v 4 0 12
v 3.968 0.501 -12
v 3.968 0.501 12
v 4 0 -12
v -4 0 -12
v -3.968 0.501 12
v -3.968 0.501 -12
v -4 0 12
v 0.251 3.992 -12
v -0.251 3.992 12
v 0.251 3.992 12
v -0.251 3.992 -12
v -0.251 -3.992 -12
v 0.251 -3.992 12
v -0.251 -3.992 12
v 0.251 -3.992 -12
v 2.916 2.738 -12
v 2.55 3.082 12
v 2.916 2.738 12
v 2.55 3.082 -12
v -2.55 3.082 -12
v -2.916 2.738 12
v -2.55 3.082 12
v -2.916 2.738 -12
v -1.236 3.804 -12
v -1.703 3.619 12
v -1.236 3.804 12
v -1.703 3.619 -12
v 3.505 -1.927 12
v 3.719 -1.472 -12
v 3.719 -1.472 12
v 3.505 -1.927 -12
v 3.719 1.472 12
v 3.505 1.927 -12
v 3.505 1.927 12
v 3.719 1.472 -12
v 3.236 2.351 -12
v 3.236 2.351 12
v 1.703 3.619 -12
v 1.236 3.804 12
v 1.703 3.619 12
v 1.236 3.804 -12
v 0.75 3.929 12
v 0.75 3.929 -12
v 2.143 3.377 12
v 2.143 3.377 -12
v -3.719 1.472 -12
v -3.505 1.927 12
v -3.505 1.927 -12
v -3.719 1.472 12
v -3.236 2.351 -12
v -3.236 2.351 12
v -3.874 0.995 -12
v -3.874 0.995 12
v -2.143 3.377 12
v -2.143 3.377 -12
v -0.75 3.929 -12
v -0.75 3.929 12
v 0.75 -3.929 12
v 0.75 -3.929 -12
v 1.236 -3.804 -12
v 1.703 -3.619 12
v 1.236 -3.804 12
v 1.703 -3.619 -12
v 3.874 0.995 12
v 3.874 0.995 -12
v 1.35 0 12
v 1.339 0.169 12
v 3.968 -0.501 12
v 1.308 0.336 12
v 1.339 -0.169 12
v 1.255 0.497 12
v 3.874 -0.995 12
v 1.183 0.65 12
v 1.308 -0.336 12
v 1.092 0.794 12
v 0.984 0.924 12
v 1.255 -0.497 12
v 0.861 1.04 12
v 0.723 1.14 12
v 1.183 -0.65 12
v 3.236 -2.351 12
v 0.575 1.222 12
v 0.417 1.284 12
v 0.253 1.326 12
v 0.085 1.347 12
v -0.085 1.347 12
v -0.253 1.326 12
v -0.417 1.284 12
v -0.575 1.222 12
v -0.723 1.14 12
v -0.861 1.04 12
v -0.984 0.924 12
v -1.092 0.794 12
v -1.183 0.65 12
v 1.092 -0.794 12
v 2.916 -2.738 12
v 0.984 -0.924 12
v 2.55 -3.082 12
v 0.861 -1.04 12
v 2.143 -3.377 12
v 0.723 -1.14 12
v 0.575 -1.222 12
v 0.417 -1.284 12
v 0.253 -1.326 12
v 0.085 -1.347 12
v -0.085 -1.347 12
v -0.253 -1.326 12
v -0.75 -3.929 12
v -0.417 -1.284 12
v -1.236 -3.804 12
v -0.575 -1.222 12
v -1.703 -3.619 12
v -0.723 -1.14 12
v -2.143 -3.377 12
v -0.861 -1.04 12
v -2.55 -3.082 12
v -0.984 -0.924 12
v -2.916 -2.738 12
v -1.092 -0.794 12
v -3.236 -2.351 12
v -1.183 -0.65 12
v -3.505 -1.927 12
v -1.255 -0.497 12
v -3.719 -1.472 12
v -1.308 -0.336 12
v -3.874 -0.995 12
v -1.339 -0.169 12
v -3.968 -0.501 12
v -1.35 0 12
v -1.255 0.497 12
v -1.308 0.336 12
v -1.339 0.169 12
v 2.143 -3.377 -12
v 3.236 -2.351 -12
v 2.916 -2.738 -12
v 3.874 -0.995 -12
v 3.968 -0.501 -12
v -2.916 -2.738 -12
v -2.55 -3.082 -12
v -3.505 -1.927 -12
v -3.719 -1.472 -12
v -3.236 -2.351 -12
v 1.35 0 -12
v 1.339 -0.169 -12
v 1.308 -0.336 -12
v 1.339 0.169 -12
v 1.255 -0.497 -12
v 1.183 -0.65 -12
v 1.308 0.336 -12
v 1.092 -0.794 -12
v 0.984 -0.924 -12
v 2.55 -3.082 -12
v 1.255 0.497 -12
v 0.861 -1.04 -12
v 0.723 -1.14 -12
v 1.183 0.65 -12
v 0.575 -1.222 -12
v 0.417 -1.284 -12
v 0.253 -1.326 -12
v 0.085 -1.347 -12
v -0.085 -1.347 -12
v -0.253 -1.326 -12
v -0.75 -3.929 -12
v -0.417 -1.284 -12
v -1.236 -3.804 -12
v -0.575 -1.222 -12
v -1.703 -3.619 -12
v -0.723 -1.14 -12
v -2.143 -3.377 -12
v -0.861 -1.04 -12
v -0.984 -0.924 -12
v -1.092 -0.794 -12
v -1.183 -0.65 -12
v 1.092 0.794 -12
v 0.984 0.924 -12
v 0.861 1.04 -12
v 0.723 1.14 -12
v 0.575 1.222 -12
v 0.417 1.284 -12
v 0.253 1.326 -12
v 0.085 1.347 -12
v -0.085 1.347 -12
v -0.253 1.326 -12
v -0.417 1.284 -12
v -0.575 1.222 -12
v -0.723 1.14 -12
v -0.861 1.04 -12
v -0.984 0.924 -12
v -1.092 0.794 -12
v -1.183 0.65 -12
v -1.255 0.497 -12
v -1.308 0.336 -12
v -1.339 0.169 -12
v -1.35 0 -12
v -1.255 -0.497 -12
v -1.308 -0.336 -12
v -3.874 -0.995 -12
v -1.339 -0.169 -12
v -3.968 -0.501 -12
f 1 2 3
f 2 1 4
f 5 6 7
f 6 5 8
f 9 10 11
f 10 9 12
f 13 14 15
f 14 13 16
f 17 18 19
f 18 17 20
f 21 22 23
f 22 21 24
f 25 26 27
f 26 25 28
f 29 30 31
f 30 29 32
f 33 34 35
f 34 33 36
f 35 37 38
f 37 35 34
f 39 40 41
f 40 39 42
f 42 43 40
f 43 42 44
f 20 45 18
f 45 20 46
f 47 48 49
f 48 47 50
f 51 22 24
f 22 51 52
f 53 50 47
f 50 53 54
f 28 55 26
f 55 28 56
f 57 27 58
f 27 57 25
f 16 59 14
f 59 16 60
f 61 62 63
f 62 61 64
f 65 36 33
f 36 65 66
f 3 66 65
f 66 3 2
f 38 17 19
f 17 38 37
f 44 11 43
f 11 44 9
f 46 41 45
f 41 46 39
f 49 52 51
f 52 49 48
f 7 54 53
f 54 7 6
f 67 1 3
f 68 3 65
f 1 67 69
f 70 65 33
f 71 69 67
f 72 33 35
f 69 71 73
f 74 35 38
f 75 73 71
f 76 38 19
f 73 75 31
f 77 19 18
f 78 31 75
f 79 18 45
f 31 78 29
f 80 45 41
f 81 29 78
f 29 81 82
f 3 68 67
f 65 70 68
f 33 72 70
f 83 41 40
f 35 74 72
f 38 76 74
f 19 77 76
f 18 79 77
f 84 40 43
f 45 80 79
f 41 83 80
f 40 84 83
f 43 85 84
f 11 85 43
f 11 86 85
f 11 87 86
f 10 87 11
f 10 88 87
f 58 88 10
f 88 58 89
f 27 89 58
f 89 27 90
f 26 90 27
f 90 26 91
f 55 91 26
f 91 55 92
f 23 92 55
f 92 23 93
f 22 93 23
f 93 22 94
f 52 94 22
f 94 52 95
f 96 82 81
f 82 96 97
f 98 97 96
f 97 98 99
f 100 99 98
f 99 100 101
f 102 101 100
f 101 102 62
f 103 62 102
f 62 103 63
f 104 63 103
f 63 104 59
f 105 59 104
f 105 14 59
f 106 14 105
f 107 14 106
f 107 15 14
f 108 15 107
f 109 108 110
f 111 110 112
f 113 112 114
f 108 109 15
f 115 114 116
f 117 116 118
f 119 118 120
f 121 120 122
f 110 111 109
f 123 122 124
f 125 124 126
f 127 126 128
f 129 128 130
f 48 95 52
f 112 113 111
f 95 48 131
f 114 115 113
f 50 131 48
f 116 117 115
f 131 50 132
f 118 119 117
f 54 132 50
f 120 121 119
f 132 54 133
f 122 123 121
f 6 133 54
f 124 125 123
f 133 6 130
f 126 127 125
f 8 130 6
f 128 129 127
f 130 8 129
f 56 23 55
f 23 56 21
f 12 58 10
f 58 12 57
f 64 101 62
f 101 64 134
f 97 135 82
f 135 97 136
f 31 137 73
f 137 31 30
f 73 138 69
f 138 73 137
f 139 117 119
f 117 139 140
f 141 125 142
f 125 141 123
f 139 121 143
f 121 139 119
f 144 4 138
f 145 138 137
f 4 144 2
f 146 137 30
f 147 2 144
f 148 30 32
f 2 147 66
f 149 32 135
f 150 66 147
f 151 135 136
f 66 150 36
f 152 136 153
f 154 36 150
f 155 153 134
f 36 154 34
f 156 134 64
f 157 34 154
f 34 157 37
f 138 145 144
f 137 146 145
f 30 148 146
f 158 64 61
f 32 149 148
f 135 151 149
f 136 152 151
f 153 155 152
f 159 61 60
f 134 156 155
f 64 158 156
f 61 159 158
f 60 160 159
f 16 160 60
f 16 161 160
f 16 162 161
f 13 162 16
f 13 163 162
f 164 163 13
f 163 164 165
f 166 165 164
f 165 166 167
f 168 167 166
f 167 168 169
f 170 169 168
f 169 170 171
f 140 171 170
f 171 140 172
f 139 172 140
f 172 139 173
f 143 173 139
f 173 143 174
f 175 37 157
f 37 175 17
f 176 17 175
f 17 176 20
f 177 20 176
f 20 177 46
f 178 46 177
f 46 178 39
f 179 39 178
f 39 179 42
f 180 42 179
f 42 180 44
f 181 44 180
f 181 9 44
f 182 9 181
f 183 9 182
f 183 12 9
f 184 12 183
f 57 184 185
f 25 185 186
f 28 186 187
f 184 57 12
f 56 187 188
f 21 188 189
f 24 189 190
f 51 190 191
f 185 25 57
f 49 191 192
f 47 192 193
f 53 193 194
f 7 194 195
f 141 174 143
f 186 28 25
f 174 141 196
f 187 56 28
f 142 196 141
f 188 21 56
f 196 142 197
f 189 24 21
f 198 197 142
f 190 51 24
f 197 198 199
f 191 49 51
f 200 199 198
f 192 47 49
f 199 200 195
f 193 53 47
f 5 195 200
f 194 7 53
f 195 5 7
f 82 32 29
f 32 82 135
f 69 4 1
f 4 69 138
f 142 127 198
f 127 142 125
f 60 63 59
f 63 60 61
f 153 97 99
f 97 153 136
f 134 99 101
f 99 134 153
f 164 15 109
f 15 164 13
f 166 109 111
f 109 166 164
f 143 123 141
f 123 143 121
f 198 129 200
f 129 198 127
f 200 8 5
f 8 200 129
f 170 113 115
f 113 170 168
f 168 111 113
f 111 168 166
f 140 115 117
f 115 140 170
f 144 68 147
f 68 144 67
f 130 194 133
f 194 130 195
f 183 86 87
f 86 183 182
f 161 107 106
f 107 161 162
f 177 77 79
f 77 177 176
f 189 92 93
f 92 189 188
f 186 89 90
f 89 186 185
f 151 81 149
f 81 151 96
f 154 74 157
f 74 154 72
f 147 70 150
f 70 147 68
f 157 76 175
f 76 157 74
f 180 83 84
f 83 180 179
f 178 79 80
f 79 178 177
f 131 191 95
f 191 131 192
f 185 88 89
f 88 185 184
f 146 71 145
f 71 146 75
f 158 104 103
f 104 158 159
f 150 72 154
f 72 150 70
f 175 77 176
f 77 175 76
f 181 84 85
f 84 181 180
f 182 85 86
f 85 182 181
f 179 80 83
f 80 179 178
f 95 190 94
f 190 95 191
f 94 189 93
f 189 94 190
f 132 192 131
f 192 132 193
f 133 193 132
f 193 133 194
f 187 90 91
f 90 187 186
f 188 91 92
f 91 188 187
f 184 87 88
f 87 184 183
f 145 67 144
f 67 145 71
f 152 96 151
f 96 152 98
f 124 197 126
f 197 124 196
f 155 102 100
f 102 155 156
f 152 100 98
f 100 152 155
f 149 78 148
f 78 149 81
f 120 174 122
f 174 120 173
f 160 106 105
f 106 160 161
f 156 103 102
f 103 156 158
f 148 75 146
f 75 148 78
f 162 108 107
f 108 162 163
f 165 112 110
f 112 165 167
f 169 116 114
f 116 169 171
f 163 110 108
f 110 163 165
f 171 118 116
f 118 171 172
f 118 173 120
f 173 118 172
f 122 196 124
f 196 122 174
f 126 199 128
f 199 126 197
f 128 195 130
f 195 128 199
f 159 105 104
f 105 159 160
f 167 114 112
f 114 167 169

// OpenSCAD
$fn = 50;


difference() {
	union() {
		translate(v = [0, 0, -12.0000000000]) {
			cylinder(h = 24, r = 4.0000000000);
		}
	}
	union() {
		translate(v = [0, 0, -100.0000000000]) {
			cylinder(h = 200, r = 1.3500000000);
		}
	}
}
